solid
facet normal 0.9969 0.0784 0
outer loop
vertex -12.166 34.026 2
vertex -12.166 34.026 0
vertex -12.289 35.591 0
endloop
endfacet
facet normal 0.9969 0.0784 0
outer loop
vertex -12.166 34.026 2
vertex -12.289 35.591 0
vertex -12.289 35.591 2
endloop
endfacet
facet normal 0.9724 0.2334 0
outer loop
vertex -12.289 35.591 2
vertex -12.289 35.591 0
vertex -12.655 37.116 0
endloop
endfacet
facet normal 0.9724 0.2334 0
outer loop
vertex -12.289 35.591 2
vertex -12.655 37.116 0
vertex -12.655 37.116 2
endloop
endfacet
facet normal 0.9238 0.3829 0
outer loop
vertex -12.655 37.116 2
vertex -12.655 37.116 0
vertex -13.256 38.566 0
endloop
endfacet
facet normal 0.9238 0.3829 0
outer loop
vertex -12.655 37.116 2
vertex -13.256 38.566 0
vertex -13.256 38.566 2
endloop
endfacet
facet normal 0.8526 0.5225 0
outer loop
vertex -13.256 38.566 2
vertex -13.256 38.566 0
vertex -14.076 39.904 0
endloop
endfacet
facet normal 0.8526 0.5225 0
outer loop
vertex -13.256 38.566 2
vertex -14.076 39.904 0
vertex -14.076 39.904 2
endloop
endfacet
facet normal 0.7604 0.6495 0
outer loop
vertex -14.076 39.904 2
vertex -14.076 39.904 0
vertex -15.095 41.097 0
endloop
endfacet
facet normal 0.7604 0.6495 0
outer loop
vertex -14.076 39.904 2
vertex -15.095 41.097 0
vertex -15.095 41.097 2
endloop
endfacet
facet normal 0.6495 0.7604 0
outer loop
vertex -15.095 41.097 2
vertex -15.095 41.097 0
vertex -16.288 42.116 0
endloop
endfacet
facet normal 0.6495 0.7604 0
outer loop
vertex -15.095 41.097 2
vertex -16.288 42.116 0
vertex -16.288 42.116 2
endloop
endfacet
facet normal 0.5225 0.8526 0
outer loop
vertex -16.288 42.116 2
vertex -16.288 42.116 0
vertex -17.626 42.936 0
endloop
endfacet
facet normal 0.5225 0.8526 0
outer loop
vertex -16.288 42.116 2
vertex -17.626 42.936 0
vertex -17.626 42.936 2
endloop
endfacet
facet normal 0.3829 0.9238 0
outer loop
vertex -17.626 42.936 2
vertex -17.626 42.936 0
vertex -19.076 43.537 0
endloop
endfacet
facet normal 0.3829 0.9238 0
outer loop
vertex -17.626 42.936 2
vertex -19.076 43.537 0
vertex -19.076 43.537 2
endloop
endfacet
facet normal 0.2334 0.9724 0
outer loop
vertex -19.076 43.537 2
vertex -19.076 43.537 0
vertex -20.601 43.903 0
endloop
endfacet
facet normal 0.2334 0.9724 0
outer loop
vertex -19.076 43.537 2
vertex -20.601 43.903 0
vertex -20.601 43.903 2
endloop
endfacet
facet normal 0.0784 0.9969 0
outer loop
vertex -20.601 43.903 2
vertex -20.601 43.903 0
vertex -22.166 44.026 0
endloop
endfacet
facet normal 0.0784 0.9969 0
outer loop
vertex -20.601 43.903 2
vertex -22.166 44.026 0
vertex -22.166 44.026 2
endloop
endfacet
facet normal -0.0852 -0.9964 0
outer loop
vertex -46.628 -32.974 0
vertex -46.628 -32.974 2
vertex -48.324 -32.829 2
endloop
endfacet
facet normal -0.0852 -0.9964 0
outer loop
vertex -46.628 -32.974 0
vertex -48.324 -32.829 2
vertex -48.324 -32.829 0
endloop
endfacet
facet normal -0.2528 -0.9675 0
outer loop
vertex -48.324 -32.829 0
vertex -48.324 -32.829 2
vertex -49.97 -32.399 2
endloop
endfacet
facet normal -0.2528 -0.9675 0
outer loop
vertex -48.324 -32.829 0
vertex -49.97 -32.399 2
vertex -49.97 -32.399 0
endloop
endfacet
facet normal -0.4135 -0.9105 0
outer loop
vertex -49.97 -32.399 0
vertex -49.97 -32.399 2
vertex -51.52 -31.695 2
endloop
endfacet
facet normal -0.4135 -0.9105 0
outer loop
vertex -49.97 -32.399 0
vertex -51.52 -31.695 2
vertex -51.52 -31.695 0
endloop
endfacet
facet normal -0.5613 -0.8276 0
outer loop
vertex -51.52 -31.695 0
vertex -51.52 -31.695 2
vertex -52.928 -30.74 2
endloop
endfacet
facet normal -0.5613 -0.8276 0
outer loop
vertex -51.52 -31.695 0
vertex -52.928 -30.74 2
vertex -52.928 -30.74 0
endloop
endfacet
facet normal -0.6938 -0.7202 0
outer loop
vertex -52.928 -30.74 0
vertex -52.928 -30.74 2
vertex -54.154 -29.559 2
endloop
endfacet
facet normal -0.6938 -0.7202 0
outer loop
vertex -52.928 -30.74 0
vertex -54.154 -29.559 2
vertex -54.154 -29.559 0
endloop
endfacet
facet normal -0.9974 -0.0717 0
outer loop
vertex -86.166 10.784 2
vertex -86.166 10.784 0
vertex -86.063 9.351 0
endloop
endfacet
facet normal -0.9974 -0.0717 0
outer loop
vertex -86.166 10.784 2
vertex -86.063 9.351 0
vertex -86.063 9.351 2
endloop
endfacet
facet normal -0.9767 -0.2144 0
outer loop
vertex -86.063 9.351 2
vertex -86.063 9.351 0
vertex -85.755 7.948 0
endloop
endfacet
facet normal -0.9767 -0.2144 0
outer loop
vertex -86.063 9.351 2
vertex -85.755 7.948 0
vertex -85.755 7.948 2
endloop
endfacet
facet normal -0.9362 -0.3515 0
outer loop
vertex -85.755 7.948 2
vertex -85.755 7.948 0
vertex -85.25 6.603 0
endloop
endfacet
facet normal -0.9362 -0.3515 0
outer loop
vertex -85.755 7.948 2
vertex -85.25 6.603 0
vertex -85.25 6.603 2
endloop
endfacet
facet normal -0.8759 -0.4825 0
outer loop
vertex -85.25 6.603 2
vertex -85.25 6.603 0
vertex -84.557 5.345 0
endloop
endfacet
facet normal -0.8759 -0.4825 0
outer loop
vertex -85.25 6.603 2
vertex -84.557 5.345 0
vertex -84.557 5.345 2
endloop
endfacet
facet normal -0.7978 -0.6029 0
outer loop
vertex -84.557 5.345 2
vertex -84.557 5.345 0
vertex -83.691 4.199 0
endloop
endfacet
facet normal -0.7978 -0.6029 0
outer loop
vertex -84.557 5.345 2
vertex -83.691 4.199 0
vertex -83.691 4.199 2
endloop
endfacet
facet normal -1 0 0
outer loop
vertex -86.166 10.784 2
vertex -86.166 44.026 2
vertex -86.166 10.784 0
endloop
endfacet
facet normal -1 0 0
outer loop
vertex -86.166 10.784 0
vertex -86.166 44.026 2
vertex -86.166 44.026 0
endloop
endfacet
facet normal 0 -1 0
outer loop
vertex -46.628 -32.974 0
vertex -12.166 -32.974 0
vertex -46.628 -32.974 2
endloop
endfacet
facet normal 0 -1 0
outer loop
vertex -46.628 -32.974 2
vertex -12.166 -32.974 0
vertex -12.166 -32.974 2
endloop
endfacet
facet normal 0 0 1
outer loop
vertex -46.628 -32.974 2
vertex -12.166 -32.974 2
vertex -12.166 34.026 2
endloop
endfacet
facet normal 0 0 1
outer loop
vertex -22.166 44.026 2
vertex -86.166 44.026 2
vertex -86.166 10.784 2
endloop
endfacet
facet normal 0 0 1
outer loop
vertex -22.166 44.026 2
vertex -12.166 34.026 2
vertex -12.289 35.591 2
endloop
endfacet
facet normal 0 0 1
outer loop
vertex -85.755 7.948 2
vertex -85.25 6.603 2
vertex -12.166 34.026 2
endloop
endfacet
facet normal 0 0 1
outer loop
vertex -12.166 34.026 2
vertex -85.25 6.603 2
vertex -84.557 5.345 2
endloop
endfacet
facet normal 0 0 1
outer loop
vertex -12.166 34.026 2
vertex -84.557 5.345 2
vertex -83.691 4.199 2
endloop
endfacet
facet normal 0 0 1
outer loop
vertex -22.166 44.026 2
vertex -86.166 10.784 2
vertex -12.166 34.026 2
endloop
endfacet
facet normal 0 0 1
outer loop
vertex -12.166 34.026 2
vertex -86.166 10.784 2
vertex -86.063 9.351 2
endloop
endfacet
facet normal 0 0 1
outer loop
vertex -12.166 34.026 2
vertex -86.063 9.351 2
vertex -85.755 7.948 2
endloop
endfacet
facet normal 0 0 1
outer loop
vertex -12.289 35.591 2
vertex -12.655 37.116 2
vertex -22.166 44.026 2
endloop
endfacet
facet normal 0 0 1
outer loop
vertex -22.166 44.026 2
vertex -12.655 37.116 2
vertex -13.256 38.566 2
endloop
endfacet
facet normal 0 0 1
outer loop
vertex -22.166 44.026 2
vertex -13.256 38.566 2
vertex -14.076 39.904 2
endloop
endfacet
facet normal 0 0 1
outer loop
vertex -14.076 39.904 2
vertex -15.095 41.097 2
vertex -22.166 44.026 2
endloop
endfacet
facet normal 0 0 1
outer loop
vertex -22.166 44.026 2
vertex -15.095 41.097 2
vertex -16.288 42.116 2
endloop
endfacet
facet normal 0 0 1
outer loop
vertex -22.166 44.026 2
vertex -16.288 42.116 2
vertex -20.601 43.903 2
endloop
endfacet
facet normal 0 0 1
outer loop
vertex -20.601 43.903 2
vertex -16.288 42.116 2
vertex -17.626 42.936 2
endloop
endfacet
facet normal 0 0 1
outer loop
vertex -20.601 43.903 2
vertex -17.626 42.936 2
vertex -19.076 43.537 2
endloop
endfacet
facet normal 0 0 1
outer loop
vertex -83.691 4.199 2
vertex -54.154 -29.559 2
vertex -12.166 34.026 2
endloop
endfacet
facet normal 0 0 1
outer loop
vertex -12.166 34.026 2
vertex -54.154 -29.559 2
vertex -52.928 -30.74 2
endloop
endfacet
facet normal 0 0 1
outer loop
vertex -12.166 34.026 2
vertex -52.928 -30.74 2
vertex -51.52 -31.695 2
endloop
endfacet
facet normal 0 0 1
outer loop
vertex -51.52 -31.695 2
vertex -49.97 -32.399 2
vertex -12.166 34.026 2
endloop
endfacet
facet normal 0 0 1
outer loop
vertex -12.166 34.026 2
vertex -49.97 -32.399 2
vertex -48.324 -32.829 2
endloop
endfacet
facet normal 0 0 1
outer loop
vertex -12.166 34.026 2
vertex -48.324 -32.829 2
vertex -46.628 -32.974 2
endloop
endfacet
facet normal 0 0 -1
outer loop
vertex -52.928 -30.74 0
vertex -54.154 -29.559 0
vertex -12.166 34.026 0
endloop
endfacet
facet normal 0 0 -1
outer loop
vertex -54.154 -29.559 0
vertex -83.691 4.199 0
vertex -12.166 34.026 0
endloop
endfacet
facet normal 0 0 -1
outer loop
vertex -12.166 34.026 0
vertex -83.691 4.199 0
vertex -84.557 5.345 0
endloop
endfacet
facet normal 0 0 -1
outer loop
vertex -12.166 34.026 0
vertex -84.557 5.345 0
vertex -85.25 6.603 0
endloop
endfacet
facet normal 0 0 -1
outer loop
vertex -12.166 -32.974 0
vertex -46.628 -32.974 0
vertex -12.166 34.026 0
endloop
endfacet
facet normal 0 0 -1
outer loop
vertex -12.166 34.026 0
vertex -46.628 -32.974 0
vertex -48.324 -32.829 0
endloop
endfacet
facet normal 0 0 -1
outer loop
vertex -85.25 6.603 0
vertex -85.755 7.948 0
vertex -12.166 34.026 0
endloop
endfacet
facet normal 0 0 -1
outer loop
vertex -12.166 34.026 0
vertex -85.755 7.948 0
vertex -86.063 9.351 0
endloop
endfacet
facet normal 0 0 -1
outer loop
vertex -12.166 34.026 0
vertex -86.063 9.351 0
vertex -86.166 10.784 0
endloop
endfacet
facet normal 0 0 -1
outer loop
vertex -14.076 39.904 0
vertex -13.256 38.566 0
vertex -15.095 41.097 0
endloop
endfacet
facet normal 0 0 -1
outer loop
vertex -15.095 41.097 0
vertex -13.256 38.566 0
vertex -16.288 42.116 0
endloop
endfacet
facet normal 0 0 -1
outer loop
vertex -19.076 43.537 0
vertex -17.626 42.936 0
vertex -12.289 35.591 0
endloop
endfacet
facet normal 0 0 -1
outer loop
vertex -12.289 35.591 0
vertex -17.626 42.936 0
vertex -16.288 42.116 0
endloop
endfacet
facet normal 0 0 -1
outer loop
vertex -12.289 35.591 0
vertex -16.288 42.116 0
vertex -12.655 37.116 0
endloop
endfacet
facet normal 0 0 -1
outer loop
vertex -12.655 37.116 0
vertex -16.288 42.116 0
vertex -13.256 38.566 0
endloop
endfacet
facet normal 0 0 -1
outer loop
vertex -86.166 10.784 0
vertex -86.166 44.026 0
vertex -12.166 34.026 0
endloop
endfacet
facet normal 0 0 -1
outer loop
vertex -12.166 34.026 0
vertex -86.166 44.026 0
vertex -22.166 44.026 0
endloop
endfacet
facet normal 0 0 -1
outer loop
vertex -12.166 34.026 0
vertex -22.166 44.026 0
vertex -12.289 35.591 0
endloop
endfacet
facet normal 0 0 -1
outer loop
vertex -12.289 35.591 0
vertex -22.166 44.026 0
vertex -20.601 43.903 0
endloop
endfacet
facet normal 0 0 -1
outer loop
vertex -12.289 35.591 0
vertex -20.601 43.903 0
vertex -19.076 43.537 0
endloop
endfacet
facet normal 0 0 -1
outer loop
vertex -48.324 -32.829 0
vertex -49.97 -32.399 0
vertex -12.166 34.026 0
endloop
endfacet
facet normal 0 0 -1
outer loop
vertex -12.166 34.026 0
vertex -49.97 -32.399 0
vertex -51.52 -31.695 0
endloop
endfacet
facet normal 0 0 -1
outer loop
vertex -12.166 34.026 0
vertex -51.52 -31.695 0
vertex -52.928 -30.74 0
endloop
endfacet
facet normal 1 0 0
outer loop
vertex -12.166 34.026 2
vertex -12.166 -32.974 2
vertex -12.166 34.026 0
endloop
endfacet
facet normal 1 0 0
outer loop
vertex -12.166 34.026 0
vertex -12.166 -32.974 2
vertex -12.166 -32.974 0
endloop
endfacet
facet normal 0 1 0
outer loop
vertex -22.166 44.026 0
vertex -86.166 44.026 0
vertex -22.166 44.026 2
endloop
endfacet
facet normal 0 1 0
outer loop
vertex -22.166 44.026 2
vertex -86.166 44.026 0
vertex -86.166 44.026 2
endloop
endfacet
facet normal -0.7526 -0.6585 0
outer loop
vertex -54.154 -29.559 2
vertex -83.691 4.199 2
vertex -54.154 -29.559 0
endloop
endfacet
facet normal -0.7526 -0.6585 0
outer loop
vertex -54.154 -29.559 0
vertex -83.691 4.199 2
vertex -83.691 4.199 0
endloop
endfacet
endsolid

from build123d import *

# Parameters (mm, degrees)
ESBO_O1_W                  = 74
ESBO_O1_H                  = 77
RESSALTO_EXTRUS_O1_DEPTH   = 2
CORTE_EXTRUS_O1_DEPTH      = 1
CORTE_EXTRUS_O1_DEPTH_BACK = 3
FILETE1_R                  = 10
FILETE2_R                  = 10
FILETE3_R                  = 10


with BuildPart() as part:
    # Esboço1 → Ressalto-extrusão1 (new body)
    with BuildSketch(Plane.XY):
        with Locations((-49.165685596, 5.526315789)):
            Rectangle(ESBO_O1_W, ESBO_O1_H)
    extrude(amount=RESSALTO_EXTRUS_O1_DEPTH)

    # Esboço2 → Corte-extrusão1 (cut, two sides)
    with BuildSketch(Plane.XY.offset(2)) as corte_extrus_o1_sk:
        Polygon((69.094880688, -170.414331392), (-51.165685596, -32.973684211), (-86.165685596, 7.026315789), (-206.426251879, 144.46696297), (-481.307546241, -96.054169596), (-205.786413674, -410.935463958), align=None)
    extrude(amount=CORTE_EXTRUS_O1_DEPTH, mode=Mode.SUBTRACT)
    extrude(corte_extrus_o1_sk.sketch, amount=-CORTE_EXTRUS_O1_DEPTH_BACK, mode=Mode.SUBTRACT)

    # Filete1
    filete1_edges = [part.edges().sort_by_distance(p)[0] for p in [
        (-86.165685596, 7.026315789, 1),
    ]]
    fillet(filete1_edges, radius=FILETE1_R)

    # Filete2
    filete2_edges = [part.edges().sort_by_distance(p)[0] for p in [
        (-51.165685596, -32.973684211, 1),
    ]]
    fillet(filete2_edges, radius=FILETE2_R)

    # Filete3
    filete3_edges = [part.edges().sort_by_distance(p)[0] for p in [
        (-12.165685596, 44.026315789, 1),
    ]]
    fillet(filete3_edges, radius=FILETE3_R)


solid = part.part
